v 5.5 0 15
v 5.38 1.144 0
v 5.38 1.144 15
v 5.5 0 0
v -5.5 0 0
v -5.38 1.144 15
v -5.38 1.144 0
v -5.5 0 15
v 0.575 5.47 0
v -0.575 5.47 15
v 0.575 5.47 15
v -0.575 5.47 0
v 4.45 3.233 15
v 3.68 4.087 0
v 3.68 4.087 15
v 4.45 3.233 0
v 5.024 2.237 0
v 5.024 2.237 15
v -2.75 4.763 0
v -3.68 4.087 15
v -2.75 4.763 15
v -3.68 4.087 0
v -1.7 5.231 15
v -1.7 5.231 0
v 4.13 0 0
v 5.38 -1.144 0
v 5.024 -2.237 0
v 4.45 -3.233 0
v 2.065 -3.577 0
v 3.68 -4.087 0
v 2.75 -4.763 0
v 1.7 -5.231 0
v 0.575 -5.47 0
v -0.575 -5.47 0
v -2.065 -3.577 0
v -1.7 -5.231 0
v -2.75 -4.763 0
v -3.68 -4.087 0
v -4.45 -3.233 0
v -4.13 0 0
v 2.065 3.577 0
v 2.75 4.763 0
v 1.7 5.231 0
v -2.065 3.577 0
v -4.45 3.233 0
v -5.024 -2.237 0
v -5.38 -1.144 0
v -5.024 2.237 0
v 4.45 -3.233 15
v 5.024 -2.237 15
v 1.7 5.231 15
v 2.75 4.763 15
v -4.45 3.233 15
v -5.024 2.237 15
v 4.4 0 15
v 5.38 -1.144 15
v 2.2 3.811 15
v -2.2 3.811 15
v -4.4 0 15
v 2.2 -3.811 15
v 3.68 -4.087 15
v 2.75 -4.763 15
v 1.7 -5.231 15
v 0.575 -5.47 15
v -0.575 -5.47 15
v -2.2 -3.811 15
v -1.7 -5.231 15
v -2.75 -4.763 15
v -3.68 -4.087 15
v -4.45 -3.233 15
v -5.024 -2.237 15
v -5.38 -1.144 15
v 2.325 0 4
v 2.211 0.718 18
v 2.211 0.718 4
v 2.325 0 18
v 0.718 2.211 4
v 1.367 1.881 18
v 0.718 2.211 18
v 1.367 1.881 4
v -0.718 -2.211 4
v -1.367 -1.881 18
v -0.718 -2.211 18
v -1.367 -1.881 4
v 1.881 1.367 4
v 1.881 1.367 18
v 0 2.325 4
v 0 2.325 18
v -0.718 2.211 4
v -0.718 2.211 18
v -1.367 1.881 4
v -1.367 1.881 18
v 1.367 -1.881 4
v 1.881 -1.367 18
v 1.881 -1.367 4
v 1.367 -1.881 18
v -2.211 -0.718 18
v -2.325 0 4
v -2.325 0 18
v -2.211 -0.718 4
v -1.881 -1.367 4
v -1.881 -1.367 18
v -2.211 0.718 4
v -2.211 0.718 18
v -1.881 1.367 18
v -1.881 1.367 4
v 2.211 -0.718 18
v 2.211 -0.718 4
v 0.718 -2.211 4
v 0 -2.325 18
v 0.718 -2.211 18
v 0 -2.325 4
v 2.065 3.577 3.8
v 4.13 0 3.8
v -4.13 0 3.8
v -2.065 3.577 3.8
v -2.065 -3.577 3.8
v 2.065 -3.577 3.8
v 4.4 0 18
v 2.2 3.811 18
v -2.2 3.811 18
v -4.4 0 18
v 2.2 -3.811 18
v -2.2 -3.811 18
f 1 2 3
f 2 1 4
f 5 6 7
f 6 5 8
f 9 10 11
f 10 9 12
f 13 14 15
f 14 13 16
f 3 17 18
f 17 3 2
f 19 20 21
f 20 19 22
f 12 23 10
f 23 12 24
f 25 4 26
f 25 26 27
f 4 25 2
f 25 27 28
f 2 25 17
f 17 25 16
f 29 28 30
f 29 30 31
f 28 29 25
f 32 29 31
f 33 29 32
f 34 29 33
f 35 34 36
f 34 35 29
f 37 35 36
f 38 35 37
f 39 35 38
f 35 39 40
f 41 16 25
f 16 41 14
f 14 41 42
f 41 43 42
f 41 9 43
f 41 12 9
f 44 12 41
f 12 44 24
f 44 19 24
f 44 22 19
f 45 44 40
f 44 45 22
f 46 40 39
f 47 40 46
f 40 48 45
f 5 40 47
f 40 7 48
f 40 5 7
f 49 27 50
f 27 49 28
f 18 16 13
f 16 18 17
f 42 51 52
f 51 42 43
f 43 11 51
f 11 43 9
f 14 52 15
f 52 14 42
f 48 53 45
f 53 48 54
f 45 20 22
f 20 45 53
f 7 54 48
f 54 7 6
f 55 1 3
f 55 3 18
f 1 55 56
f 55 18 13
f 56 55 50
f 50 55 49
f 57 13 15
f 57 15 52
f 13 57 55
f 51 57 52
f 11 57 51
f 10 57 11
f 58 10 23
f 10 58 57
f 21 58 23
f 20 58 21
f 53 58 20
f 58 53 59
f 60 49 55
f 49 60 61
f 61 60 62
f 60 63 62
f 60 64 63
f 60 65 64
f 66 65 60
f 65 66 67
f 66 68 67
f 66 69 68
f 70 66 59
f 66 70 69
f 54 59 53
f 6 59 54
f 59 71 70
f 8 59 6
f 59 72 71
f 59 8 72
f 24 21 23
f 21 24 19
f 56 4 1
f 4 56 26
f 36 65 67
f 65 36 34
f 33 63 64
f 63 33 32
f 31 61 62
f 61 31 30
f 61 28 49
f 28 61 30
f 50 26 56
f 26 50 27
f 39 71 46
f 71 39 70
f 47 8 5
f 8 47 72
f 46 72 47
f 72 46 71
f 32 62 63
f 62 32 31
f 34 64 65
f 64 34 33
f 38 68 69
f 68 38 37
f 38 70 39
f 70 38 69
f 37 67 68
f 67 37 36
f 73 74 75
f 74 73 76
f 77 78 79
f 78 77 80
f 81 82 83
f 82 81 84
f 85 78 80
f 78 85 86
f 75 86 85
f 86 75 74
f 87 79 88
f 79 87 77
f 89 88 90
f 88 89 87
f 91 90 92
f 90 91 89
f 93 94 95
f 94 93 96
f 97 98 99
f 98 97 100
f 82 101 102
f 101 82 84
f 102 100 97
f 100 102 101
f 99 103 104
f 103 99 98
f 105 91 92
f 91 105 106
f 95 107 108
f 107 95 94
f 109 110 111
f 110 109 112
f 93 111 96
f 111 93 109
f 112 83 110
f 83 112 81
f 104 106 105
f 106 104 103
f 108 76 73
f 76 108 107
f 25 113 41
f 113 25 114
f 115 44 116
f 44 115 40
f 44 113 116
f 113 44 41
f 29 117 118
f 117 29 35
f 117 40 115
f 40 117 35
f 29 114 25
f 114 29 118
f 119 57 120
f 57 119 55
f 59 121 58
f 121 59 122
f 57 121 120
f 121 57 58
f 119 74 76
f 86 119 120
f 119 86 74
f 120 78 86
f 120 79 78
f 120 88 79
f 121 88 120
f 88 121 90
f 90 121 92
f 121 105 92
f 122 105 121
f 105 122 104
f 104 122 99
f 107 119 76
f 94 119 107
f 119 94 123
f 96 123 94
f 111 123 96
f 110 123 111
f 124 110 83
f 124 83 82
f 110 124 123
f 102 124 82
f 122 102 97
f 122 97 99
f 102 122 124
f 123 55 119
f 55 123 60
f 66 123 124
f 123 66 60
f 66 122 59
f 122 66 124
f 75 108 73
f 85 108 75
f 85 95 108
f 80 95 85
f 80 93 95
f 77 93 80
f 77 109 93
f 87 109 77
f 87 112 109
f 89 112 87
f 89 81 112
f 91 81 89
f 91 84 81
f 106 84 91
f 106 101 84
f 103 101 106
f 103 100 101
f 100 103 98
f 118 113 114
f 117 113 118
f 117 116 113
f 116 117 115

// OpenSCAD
m5 = 8.79;
m4 = 7.66;

//ECHO: 4.395
//ECHO: 3.83
echo((4.7-0.3)*2)

//rotate([0,0,18])cylinder(h=15, r=2.65, $fn=10);
echo(m5/2);
echo(m4/2);
//translate([0, 0, 0]) cylinder(h=15, r=4.7, $fn=6);
difference() {
    translate([0, 0, 0]) cylinder(h=15, r=5.5, $fn=30);
    translate([0, 0, -1])  cylinder(h=15+2, d=4.65, $fn=20);
    translate([0, 0, -0.01]) cylinder(h=4, r=3.83+0.3, $fn=6);
}
//translate([0, -2.95, 3.5]) cube([5.8, 1.2, 0.4], center=true);
//translate([0, 2.95, 3.5]) cube([5.8, 1.2, 0.4], center=true);

translate([0, 0, 3.8]) cylinder(h=0.2, r=4.2+0.3, $fn=6);  //sacrificial support
//rotate([0, 0, 90]) translate([0, 2.95, 3.5+1*0.2]) cube([5.8, 1.2, 0.4], center=true);

difference() {
    translate([0, 0, 10]) cylinder(h=8, d=(4.7-0.3)*2, $fn=6);
    translate([0, 0, 9])  cylinder(h=10+2, d=4.65, $fn=20);
    
}
